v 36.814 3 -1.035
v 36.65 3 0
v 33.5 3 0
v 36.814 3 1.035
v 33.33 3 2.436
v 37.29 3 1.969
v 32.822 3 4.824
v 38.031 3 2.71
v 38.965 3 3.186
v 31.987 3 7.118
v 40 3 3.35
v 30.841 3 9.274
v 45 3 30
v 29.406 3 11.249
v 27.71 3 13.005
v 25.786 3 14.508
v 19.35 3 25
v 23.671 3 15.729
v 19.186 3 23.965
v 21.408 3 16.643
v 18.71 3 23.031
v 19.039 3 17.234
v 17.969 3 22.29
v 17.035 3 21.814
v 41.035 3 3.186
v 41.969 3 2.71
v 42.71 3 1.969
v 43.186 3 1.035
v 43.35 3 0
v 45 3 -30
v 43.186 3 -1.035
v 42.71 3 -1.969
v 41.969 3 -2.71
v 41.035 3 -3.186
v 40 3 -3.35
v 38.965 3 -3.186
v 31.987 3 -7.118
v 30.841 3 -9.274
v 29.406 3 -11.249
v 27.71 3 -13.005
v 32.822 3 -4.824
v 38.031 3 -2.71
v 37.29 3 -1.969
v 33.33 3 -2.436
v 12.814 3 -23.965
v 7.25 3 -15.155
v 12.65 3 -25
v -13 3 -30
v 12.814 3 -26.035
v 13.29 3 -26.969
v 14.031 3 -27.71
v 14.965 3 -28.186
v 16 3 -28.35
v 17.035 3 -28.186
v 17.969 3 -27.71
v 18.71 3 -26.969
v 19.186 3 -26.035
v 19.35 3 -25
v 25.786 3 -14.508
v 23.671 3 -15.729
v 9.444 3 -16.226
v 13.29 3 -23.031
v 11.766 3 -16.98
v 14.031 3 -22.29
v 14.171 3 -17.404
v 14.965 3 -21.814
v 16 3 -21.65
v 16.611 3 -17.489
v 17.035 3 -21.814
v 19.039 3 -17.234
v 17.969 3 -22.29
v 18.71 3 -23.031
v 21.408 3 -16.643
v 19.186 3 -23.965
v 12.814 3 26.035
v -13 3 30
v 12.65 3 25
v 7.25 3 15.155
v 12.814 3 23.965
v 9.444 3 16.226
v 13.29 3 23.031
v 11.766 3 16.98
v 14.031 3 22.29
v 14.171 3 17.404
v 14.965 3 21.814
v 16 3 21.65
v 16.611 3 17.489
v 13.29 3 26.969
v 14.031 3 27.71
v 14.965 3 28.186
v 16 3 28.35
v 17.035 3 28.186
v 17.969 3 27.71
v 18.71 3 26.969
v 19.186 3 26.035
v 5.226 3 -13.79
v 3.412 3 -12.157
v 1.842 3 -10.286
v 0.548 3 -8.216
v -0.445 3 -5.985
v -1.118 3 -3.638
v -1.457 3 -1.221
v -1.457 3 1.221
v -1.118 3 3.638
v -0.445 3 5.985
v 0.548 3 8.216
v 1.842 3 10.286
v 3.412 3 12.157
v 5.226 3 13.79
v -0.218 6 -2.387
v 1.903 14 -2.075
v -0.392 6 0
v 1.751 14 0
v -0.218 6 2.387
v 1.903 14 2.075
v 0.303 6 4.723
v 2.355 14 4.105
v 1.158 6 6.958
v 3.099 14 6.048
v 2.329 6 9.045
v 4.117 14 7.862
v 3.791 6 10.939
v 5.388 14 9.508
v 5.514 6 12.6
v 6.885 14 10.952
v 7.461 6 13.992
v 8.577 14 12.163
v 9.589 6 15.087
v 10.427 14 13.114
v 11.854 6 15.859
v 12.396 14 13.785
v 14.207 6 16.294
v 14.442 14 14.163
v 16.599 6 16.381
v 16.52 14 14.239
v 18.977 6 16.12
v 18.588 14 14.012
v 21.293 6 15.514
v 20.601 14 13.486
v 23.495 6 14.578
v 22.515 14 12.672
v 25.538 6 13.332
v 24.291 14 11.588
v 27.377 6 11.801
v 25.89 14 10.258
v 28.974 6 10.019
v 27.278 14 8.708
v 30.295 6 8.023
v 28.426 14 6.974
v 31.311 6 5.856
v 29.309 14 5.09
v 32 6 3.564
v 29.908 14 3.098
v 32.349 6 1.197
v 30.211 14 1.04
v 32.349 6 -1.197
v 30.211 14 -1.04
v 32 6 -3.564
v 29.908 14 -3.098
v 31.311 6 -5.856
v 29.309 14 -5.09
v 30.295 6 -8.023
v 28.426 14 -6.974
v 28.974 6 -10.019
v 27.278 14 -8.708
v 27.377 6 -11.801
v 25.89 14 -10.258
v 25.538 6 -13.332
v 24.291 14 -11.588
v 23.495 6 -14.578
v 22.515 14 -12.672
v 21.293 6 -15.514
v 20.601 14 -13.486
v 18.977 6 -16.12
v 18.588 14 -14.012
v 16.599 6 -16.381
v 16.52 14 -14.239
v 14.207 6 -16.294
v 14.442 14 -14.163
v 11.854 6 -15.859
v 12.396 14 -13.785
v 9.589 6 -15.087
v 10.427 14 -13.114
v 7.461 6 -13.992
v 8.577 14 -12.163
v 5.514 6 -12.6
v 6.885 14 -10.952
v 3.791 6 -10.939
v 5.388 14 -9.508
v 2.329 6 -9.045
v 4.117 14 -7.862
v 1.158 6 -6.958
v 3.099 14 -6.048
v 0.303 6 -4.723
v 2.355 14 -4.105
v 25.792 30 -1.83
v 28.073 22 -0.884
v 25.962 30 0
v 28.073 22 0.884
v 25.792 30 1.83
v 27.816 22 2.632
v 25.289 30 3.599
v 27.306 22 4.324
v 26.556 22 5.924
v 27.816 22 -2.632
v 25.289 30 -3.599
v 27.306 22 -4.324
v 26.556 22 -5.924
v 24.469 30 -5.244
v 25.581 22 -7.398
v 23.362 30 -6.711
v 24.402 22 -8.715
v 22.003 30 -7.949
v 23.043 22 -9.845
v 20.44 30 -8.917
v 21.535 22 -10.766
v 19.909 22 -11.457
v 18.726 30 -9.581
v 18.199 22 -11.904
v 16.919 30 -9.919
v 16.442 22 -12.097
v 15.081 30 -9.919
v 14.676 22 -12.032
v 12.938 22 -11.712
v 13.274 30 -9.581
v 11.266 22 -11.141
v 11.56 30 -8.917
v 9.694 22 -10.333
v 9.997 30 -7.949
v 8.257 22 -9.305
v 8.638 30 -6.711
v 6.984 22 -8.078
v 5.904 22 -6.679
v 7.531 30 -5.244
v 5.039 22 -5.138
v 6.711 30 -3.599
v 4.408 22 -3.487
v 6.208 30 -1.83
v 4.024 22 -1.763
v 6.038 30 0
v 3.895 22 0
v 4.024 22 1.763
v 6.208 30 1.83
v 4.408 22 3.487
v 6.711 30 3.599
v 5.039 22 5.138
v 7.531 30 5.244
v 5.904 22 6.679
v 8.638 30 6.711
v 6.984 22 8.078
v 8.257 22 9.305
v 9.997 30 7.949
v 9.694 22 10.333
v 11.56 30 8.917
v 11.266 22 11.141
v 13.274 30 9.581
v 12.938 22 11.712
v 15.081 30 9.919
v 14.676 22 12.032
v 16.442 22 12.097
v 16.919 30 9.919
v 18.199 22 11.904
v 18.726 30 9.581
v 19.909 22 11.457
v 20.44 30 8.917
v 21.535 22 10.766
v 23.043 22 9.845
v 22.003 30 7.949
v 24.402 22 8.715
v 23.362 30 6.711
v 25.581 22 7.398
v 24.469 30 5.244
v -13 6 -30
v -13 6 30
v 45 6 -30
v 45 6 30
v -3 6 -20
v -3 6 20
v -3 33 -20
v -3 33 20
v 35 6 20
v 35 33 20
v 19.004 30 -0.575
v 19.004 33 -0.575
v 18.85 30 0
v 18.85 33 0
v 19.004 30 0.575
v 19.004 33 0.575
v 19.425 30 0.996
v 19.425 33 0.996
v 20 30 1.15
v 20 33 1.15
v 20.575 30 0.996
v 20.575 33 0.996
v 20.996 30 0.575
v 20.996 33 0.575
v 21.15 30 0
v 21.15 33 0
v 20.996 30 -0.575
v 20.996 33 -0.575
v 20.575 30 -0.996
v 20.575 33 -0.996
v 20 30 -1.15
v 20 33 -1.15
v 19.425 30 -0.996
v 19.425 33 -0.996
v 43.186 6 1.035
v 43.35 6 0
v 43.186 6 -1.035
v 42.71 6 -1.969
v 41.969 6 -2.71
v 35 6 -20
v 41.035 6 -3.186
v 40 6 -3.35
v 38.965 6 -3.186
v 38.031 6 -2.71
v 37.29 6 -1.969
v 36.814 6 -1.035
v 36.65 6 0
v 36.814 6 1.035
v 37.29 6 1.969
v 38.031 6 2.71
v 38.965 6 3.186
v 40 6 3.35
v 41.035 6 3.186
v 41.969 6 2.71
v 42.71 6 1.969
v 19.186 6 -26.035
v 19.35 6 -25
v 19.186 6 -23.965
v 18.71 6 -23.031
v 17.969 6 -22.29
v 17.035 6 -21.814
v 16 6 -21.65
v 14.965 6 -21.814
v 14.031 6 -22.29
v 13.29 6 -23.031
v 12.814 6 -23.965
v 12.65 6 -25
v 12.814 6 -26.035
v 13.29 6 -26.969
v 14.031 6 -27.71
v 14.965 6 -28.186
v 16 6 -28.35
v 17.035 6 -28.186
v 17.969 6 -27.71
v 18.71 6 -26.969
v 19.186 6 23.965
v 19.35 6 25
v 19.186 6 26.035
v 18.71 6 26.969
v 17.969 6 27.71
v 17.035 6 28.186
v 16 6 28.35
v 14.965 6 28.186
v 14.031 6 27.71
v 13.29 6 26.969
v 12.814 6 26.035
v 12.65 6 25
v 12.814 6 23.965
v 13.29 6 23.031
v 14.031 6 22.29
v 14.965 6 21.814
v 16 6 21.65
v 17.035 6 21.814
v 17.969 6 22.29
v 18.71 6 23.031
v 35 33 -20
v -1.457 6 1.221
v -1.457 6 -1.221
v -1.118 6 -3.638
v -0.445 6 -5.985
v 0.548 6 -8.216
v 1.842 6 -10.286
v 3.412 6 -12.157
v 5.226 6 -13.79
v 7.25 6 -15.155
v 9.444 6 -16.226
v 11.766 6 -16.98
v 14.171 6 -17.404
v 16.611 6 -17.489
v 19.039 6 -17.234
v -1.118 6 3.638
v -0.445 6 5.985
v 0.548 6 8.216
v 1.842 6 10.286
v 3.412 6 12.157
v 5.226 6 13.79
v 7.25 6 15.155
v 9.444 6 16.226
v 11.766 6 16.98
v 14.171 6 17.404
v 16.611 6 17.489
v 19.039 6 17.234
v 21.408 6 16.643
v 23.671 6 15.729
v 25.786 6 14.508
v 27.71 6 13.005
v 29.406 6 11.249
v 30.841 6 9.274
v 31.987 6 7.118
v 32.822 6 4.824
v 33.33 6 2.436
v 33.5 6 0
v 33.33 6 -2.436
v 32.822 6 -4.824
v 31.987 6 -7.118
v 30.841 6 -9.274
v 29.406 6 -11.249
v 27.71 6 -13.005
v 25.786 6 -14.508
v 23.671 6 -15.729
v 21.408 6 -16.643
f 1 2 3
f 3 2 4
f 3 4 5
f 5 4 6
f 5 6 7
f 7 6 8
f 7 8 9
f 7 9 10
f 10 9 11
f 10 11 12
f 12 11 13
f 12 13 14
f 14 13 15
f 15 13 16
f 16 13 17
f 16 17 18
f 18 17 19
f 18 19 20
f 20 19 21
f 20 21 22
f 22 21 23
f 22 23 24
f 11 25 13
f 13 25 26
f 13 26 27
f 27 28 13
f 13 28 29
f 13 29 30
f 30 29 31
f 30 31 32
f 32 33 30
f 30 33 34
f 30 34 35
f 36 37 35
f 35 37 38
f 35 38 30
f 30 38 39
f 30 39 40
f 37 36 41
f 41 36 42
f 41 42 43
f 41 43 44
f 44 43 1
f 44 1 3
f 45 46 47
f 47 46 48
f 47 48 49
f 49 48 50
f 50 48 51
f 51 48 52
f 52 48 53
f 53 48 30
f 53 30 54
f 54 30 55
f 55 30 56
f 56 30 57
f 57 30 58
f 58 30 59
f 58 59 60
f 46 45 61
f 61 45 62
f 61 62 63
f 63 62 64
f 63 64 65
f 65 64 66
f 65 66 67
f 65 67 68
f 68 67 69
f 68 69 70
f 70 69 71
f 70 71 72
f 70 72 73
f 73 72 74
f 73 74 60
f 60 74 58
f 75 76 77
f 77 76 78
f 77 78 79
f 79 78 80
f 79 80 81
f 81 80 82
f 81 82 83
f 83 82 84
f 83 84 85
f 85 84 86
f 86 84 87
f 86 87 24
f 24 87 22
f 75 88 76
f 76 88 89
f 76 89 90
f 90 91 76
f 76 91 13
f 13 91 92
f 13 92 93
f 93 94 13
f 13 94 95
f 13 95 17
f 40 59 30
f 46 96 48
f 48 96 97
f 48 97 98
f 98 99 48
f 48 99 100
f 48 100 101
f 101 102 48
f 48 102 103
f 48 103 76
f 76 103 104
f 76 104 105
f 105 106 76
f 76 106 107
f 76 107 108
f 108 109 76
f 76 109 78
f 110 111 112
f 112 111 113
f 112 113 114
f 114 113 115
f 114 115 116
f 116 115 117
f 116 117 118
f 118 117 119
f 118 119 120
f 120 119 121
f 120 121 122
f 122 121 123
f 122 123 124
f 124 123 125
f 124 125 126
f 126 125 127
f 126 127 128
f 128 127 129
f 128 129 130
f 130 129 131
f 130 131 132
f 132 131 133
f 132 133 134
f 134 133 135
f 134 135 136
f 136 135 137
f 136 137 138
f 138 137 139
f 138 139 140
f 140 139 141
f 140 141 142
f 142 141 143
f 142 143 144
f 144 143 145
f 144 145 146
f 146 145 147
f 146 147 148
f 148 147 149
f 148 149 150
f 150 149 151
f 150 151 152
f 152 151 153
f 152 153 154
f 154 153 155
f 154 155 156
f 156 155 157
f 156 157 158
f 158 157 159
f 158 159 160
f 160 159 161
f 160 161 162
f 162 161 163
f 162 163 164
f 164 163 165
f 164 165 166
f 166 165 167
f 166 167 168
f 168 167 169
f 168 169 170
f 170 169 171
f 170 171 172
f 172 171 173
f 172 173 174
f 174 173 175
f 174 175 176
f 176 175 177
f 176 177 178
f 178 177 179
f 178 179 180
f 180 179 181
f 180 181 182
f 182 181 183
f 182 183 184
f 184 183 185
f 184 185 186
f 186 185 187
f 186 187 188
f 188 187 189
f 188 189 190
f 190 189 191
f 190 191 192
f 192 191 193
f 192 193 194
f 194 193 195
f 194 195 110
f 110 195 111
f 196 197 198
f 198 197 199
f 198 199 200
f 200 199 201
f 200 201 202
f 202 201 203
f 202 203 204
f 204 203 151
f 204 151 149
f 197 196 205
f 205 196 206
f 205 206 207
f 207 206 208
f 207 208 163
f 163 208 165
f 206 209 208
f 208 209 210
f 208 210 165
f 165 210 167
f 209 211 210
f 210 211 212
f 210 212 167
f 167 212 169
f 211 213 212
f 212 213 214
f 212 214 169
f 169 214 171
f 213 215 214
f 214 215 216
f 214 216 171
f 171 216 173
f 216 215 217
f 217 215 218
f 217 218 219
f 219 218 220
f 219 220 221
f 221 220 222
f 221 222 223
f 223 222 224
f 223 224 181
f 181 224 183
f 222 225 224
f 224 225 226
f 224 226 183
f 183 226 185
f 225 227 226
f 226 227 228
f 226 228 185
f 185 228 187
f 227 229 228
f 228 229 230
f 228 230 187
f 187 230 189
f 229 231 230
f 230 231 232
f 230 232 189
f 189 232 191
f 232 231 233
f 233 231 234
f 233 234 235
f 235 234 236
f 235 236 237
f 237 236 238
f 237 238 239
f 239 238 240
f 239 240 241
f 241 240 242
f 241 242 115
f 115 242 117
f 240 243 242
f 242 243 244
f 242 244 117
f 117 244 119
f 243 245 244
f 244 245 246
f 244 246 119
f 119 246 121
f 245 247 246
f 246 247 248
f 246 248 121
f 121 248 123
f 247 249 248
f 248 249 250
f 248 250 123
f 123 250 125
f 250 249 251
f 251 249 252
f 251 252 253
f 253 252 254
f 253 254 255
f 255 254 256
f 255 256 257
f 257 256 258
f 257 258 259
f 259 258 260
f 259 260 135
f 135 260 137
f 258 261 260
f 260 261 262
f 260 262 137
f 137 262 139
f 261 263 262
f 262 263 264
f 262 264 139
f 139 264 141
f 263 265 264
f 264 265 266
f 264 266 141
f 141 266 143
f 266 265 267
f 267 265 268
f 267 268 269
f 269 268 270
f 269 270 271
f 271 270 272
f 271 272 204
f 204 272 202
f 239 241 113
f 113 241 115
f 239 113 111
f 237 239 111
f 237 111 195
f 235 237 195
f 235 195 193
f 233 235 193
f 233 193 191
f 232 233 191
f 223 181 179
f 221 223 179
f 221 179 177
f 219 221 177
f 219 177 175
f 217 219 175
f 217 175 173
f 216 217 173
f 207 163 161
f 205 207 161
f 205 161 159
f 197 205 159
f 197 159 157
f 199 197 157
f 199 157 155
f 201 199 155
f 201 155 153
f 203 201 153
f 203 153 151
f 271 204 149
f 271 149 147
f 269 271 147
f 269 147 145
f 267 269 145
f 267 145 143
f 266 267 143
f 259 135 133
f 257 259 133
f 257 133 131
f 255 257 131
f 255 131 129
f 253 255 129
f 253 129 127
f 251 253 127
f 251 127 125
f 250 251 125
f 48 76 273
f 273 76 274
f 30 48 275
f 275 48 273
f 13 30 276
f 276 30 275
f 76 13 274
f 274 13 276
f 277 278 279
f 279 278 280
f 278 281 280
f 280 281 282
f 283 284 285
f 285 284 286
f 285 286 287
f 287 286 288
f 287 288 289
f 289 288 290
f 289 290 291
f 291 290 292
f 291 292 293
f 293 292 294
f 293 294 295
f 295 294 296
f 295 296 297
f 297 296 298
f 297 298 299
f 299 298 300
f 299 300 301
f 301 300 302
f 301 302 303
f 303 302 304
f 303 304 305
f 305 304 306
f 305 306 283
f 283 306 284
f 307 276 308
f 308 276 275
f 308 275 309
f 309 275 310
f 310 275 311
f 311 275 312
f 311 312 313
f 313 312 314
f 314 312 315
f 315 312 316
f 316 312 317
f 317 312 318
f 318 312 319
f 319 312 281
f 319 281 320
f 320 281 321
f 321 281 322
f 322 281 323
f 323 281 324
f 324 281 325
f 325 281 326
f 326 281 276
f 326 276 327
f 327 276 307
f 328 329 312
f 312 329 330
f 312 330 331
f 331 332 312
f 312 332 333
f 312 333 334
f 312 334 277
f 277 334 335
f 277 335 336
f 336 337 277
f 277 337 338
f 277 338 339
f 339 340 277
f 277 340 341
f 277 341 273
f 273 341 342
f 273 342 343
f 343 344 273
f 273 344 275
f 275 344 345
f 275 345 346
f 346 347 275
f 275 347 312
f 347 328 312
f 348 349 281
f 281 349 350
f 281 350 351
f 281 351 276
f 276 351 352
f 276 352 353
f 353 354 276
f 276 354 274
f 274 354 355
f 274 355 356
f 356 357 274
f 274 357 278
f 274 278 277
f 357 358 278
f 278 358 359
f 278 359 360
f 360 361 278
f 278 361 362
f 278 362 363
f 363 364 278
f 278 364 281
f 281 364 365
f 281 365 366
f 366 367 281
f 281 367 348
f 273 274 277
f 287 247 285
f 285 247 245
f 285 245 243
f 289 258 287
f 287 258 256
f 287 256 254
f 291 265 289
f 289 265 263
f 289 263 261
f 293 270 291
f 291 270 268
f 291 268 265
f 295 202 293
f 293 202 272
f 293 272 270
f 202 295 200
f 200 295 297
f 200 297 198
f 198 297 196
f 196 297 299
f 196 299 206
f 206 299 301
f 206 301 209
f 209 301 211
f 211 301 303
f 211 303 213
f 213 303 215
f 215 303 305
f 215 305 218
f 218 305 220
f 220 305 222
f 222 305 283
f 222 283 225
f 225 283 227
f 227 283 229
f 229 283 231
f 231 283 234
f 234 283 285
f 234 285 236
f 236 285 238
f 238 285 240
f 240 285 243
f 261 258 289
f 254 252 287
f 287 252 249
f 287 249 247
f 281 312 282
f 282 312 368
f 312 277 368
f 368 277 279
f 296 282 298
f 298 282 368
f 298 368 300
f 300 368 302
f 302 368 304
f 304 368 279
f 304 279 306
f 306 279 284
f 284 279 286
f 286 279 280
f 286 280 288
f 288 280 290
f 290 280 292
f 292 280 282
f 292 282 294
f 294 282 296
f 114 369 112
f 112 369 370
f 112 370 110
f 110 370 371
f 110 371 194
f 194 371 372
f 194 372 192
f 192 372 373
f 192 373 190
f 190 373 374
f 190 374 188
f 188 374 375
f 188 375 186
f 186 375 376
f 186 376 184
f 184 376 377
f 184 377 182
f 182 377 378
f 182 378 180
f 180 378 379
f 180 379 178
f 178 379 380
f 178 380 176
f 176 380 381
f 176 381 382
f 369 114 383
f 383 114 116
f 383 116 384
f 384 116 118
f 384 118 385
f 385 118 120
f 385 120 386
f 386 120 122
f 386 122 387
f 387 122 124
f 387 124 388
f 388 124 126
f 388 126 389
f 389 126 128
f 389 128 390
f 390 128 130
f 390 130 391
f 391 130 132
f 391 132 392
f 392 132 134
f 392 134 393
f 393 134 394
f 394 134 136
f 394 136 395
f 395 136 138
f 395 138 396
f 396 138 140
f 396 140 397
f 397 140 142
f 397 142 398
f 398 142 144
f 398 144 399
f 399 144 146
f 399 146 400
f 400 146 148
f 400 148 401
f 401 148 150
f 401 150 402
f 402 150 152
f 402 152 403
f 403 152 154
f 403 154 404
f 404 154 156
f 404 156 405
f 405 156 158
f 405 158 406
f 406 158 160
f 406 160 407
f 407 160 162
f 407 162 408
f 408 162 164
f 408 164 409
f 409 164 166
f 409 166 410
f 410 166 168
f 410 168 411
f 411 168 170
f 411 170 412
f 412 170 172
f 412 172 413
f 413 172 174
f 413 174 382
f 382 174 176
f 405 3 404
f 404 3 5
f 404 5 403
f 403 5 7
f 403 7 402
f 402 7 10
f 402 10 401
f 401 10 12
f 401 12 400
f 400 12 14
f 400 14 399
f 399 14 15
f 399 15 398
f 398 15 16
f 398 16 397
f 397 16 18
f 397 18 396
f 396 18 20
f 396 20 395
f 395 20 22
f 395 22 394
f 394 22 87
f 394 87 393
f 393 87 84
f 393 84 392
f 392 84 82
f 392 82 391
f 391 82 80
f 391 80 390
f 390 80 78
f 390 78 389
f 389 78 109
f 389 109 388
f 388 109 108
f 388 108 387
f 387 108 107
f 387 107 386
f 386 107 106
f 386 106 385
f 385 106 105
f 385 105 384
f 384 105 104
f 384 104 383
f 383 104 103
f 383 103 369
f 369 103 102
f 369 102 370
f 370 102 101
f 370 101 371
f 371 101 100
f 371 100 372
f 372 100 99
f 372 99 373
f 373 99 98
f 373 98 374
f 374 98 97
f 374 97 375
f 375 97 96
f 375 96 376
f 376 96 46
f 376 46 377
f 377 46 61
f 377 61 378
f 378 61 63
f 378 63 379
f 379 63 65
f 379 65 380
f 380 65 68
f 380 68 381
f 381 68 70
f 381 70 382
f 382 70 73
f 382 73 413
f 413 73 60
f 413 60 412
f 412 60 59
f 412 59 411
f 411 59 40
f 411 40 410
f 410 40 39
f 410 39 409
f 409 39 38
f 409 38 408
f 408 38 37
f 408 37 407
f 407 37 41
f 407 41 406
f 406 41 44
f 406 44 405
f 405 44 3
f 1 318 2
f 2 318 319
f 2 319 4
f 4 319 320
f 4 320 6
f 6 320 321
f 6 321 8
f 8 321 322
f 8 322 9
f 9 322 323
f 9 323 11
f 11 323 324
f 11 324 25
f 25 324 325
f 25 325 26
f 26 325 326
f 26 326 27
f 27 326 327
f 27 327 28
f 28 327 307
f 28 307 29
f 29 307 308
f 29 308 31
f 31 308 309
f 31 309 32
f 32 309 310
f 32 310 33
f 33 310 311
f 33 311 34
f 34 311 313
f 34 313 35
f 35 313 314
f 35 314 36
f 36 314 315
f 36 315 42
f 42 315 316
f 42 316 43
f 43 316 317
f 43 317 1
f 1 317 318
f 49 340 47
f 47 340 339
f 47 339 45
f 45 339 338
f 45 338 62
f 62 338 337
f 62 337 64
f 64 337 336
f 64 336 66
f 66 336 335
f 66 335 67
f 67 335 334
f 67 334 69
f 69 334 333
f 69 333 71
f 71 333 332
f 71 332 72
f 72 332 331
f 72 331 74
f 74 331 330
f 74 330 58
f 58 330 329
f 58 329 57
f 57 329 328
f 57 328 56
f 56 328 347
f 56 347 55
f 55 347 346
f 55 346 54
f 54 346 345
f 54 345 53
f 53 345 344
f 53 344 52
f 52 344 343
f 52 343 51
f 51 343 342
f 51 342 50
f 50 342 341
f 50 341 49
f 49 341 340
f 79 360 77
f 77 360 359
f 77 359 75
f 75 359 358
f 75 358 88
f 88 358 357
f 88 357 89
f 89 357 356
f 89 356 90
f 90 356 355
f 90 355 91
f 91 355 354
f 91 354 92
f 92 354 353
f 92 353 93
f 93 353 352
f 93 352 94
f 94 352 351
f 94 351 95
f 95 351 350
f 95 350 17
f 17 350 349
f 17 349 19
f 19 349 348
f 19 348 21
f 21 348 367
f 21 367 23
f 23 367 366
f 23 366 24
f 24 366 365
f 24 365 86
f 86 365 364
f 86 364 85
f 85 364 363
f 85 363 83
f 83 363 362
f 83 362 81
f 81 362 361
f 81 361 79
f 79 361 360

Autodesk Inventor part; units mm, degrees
ref_plane "YZ Plane" through (0, 0, 0) normal (1, 0, 0) x (0, 1, 0)
ref_plane "XZ Plane" through (0, 0, 0) normal (0, 1, 0) x (-1, 0, 0)
ref_plane "XY Plane" through (0, 0, 0) normal (0, 0, 1) x (1, 0, 0)
ref_plane "Work Plane5" through (0, 3, 0) normal (0, 1, 0) x (1, 0, 0)
sketch "Sketch45" plane through (0, 3, 0) normal (0, 1, 0) x (1, 0, 0)
  line L0 (35, -20) -> (-3, -20)
  line L1 (-3, -20) -> (-3, 20)
  line L2 (-3, 20) -> (35, 20)
  line L3 (35, 20) -> (35, -20)
  point P0 (0, 0)
  dimension "d142" = 38
  dimension "d143" = 40
extrude "Extrusion34" add sketch "Sketch45" along normal blind 30
ref_plane "Work Plane2" through (0, 0, 0) normal (0, -1, 0) x (1, 0, 0)
sketch "Sketch47" plane through (0, 0, 0) normal (0, -1, 0) x (1, 0, 0)
  circle A0 centre (16, 0) radius 18
  point P0 (0, 0)
  dimension "d146" = 36
extrude "Extrusion35" cut sketch "Sketch47" against normal blind 30 draft -15
ref_plane "Work Plane1" through (0, 3, 0) normal (0, 1, 0) x (1, 0, 0)
sketch "Sketch74" plane through (0, 33, 0) normal (0, 1, 0) x (1, 0, 0)
  circle A0 centre (20, 0) radius 1.15
  point P0 (0, 0)
  dimension "d210" = 2.3
extrude "Extrusion51" cut sketch "Sketch74" against normal blind 10
sketch "Sketch77" plane through (0, 3, 0) normal (0, -1, 0) x (1, 0, 0)
  circle A0 centre (16, 0) radius 17.5
  point P0 (0, 0)
  dimension "d219" = 35
sketch "Sketch78" plane through (0, 3, 0) normal (0, -1, 0) x (1, 0, 0)
  line L0 (45, -30) -> (-13, -30)
  line L1 (-13, -30) -> (-13, 30)
  line L2 (-13, 30) -> (45, 30)
  line L3 (45, 30) -> (45, -30)
  line L4 (45, -30) -> (-13, 30) construction
  line L5 (-13, -30) -> (45, 30) construction
  point P0 (0, 0)
  point P1 (16, 0)
  dimension "d220" = 58
  dimension "d221" = 60
extrude "Extrusion53" add sketch "Sketch78" against normal blind 3
extrude "Extrusion54" cut sketch "Sketch77" against normal blind 3
sketch "Sketch79" plane through (0, 6, 0) normal (0, 1, 0) x (1, 0, 0)
  circle A0 centre (16, -25) radius 3.35
  circle A1 centre (16, 25) radius 3.35
  circle A2 centre (40, 0) radius 3.35
  point P0 (0, 0)
  dimension "d226" = 6.7
  dimension "d227" = 6.7
  dimension "d228" = 6.7
extrude "Extrusion55" cut sketch "Sketch79" against normal through all
properties part number "liquid_port_v01"
